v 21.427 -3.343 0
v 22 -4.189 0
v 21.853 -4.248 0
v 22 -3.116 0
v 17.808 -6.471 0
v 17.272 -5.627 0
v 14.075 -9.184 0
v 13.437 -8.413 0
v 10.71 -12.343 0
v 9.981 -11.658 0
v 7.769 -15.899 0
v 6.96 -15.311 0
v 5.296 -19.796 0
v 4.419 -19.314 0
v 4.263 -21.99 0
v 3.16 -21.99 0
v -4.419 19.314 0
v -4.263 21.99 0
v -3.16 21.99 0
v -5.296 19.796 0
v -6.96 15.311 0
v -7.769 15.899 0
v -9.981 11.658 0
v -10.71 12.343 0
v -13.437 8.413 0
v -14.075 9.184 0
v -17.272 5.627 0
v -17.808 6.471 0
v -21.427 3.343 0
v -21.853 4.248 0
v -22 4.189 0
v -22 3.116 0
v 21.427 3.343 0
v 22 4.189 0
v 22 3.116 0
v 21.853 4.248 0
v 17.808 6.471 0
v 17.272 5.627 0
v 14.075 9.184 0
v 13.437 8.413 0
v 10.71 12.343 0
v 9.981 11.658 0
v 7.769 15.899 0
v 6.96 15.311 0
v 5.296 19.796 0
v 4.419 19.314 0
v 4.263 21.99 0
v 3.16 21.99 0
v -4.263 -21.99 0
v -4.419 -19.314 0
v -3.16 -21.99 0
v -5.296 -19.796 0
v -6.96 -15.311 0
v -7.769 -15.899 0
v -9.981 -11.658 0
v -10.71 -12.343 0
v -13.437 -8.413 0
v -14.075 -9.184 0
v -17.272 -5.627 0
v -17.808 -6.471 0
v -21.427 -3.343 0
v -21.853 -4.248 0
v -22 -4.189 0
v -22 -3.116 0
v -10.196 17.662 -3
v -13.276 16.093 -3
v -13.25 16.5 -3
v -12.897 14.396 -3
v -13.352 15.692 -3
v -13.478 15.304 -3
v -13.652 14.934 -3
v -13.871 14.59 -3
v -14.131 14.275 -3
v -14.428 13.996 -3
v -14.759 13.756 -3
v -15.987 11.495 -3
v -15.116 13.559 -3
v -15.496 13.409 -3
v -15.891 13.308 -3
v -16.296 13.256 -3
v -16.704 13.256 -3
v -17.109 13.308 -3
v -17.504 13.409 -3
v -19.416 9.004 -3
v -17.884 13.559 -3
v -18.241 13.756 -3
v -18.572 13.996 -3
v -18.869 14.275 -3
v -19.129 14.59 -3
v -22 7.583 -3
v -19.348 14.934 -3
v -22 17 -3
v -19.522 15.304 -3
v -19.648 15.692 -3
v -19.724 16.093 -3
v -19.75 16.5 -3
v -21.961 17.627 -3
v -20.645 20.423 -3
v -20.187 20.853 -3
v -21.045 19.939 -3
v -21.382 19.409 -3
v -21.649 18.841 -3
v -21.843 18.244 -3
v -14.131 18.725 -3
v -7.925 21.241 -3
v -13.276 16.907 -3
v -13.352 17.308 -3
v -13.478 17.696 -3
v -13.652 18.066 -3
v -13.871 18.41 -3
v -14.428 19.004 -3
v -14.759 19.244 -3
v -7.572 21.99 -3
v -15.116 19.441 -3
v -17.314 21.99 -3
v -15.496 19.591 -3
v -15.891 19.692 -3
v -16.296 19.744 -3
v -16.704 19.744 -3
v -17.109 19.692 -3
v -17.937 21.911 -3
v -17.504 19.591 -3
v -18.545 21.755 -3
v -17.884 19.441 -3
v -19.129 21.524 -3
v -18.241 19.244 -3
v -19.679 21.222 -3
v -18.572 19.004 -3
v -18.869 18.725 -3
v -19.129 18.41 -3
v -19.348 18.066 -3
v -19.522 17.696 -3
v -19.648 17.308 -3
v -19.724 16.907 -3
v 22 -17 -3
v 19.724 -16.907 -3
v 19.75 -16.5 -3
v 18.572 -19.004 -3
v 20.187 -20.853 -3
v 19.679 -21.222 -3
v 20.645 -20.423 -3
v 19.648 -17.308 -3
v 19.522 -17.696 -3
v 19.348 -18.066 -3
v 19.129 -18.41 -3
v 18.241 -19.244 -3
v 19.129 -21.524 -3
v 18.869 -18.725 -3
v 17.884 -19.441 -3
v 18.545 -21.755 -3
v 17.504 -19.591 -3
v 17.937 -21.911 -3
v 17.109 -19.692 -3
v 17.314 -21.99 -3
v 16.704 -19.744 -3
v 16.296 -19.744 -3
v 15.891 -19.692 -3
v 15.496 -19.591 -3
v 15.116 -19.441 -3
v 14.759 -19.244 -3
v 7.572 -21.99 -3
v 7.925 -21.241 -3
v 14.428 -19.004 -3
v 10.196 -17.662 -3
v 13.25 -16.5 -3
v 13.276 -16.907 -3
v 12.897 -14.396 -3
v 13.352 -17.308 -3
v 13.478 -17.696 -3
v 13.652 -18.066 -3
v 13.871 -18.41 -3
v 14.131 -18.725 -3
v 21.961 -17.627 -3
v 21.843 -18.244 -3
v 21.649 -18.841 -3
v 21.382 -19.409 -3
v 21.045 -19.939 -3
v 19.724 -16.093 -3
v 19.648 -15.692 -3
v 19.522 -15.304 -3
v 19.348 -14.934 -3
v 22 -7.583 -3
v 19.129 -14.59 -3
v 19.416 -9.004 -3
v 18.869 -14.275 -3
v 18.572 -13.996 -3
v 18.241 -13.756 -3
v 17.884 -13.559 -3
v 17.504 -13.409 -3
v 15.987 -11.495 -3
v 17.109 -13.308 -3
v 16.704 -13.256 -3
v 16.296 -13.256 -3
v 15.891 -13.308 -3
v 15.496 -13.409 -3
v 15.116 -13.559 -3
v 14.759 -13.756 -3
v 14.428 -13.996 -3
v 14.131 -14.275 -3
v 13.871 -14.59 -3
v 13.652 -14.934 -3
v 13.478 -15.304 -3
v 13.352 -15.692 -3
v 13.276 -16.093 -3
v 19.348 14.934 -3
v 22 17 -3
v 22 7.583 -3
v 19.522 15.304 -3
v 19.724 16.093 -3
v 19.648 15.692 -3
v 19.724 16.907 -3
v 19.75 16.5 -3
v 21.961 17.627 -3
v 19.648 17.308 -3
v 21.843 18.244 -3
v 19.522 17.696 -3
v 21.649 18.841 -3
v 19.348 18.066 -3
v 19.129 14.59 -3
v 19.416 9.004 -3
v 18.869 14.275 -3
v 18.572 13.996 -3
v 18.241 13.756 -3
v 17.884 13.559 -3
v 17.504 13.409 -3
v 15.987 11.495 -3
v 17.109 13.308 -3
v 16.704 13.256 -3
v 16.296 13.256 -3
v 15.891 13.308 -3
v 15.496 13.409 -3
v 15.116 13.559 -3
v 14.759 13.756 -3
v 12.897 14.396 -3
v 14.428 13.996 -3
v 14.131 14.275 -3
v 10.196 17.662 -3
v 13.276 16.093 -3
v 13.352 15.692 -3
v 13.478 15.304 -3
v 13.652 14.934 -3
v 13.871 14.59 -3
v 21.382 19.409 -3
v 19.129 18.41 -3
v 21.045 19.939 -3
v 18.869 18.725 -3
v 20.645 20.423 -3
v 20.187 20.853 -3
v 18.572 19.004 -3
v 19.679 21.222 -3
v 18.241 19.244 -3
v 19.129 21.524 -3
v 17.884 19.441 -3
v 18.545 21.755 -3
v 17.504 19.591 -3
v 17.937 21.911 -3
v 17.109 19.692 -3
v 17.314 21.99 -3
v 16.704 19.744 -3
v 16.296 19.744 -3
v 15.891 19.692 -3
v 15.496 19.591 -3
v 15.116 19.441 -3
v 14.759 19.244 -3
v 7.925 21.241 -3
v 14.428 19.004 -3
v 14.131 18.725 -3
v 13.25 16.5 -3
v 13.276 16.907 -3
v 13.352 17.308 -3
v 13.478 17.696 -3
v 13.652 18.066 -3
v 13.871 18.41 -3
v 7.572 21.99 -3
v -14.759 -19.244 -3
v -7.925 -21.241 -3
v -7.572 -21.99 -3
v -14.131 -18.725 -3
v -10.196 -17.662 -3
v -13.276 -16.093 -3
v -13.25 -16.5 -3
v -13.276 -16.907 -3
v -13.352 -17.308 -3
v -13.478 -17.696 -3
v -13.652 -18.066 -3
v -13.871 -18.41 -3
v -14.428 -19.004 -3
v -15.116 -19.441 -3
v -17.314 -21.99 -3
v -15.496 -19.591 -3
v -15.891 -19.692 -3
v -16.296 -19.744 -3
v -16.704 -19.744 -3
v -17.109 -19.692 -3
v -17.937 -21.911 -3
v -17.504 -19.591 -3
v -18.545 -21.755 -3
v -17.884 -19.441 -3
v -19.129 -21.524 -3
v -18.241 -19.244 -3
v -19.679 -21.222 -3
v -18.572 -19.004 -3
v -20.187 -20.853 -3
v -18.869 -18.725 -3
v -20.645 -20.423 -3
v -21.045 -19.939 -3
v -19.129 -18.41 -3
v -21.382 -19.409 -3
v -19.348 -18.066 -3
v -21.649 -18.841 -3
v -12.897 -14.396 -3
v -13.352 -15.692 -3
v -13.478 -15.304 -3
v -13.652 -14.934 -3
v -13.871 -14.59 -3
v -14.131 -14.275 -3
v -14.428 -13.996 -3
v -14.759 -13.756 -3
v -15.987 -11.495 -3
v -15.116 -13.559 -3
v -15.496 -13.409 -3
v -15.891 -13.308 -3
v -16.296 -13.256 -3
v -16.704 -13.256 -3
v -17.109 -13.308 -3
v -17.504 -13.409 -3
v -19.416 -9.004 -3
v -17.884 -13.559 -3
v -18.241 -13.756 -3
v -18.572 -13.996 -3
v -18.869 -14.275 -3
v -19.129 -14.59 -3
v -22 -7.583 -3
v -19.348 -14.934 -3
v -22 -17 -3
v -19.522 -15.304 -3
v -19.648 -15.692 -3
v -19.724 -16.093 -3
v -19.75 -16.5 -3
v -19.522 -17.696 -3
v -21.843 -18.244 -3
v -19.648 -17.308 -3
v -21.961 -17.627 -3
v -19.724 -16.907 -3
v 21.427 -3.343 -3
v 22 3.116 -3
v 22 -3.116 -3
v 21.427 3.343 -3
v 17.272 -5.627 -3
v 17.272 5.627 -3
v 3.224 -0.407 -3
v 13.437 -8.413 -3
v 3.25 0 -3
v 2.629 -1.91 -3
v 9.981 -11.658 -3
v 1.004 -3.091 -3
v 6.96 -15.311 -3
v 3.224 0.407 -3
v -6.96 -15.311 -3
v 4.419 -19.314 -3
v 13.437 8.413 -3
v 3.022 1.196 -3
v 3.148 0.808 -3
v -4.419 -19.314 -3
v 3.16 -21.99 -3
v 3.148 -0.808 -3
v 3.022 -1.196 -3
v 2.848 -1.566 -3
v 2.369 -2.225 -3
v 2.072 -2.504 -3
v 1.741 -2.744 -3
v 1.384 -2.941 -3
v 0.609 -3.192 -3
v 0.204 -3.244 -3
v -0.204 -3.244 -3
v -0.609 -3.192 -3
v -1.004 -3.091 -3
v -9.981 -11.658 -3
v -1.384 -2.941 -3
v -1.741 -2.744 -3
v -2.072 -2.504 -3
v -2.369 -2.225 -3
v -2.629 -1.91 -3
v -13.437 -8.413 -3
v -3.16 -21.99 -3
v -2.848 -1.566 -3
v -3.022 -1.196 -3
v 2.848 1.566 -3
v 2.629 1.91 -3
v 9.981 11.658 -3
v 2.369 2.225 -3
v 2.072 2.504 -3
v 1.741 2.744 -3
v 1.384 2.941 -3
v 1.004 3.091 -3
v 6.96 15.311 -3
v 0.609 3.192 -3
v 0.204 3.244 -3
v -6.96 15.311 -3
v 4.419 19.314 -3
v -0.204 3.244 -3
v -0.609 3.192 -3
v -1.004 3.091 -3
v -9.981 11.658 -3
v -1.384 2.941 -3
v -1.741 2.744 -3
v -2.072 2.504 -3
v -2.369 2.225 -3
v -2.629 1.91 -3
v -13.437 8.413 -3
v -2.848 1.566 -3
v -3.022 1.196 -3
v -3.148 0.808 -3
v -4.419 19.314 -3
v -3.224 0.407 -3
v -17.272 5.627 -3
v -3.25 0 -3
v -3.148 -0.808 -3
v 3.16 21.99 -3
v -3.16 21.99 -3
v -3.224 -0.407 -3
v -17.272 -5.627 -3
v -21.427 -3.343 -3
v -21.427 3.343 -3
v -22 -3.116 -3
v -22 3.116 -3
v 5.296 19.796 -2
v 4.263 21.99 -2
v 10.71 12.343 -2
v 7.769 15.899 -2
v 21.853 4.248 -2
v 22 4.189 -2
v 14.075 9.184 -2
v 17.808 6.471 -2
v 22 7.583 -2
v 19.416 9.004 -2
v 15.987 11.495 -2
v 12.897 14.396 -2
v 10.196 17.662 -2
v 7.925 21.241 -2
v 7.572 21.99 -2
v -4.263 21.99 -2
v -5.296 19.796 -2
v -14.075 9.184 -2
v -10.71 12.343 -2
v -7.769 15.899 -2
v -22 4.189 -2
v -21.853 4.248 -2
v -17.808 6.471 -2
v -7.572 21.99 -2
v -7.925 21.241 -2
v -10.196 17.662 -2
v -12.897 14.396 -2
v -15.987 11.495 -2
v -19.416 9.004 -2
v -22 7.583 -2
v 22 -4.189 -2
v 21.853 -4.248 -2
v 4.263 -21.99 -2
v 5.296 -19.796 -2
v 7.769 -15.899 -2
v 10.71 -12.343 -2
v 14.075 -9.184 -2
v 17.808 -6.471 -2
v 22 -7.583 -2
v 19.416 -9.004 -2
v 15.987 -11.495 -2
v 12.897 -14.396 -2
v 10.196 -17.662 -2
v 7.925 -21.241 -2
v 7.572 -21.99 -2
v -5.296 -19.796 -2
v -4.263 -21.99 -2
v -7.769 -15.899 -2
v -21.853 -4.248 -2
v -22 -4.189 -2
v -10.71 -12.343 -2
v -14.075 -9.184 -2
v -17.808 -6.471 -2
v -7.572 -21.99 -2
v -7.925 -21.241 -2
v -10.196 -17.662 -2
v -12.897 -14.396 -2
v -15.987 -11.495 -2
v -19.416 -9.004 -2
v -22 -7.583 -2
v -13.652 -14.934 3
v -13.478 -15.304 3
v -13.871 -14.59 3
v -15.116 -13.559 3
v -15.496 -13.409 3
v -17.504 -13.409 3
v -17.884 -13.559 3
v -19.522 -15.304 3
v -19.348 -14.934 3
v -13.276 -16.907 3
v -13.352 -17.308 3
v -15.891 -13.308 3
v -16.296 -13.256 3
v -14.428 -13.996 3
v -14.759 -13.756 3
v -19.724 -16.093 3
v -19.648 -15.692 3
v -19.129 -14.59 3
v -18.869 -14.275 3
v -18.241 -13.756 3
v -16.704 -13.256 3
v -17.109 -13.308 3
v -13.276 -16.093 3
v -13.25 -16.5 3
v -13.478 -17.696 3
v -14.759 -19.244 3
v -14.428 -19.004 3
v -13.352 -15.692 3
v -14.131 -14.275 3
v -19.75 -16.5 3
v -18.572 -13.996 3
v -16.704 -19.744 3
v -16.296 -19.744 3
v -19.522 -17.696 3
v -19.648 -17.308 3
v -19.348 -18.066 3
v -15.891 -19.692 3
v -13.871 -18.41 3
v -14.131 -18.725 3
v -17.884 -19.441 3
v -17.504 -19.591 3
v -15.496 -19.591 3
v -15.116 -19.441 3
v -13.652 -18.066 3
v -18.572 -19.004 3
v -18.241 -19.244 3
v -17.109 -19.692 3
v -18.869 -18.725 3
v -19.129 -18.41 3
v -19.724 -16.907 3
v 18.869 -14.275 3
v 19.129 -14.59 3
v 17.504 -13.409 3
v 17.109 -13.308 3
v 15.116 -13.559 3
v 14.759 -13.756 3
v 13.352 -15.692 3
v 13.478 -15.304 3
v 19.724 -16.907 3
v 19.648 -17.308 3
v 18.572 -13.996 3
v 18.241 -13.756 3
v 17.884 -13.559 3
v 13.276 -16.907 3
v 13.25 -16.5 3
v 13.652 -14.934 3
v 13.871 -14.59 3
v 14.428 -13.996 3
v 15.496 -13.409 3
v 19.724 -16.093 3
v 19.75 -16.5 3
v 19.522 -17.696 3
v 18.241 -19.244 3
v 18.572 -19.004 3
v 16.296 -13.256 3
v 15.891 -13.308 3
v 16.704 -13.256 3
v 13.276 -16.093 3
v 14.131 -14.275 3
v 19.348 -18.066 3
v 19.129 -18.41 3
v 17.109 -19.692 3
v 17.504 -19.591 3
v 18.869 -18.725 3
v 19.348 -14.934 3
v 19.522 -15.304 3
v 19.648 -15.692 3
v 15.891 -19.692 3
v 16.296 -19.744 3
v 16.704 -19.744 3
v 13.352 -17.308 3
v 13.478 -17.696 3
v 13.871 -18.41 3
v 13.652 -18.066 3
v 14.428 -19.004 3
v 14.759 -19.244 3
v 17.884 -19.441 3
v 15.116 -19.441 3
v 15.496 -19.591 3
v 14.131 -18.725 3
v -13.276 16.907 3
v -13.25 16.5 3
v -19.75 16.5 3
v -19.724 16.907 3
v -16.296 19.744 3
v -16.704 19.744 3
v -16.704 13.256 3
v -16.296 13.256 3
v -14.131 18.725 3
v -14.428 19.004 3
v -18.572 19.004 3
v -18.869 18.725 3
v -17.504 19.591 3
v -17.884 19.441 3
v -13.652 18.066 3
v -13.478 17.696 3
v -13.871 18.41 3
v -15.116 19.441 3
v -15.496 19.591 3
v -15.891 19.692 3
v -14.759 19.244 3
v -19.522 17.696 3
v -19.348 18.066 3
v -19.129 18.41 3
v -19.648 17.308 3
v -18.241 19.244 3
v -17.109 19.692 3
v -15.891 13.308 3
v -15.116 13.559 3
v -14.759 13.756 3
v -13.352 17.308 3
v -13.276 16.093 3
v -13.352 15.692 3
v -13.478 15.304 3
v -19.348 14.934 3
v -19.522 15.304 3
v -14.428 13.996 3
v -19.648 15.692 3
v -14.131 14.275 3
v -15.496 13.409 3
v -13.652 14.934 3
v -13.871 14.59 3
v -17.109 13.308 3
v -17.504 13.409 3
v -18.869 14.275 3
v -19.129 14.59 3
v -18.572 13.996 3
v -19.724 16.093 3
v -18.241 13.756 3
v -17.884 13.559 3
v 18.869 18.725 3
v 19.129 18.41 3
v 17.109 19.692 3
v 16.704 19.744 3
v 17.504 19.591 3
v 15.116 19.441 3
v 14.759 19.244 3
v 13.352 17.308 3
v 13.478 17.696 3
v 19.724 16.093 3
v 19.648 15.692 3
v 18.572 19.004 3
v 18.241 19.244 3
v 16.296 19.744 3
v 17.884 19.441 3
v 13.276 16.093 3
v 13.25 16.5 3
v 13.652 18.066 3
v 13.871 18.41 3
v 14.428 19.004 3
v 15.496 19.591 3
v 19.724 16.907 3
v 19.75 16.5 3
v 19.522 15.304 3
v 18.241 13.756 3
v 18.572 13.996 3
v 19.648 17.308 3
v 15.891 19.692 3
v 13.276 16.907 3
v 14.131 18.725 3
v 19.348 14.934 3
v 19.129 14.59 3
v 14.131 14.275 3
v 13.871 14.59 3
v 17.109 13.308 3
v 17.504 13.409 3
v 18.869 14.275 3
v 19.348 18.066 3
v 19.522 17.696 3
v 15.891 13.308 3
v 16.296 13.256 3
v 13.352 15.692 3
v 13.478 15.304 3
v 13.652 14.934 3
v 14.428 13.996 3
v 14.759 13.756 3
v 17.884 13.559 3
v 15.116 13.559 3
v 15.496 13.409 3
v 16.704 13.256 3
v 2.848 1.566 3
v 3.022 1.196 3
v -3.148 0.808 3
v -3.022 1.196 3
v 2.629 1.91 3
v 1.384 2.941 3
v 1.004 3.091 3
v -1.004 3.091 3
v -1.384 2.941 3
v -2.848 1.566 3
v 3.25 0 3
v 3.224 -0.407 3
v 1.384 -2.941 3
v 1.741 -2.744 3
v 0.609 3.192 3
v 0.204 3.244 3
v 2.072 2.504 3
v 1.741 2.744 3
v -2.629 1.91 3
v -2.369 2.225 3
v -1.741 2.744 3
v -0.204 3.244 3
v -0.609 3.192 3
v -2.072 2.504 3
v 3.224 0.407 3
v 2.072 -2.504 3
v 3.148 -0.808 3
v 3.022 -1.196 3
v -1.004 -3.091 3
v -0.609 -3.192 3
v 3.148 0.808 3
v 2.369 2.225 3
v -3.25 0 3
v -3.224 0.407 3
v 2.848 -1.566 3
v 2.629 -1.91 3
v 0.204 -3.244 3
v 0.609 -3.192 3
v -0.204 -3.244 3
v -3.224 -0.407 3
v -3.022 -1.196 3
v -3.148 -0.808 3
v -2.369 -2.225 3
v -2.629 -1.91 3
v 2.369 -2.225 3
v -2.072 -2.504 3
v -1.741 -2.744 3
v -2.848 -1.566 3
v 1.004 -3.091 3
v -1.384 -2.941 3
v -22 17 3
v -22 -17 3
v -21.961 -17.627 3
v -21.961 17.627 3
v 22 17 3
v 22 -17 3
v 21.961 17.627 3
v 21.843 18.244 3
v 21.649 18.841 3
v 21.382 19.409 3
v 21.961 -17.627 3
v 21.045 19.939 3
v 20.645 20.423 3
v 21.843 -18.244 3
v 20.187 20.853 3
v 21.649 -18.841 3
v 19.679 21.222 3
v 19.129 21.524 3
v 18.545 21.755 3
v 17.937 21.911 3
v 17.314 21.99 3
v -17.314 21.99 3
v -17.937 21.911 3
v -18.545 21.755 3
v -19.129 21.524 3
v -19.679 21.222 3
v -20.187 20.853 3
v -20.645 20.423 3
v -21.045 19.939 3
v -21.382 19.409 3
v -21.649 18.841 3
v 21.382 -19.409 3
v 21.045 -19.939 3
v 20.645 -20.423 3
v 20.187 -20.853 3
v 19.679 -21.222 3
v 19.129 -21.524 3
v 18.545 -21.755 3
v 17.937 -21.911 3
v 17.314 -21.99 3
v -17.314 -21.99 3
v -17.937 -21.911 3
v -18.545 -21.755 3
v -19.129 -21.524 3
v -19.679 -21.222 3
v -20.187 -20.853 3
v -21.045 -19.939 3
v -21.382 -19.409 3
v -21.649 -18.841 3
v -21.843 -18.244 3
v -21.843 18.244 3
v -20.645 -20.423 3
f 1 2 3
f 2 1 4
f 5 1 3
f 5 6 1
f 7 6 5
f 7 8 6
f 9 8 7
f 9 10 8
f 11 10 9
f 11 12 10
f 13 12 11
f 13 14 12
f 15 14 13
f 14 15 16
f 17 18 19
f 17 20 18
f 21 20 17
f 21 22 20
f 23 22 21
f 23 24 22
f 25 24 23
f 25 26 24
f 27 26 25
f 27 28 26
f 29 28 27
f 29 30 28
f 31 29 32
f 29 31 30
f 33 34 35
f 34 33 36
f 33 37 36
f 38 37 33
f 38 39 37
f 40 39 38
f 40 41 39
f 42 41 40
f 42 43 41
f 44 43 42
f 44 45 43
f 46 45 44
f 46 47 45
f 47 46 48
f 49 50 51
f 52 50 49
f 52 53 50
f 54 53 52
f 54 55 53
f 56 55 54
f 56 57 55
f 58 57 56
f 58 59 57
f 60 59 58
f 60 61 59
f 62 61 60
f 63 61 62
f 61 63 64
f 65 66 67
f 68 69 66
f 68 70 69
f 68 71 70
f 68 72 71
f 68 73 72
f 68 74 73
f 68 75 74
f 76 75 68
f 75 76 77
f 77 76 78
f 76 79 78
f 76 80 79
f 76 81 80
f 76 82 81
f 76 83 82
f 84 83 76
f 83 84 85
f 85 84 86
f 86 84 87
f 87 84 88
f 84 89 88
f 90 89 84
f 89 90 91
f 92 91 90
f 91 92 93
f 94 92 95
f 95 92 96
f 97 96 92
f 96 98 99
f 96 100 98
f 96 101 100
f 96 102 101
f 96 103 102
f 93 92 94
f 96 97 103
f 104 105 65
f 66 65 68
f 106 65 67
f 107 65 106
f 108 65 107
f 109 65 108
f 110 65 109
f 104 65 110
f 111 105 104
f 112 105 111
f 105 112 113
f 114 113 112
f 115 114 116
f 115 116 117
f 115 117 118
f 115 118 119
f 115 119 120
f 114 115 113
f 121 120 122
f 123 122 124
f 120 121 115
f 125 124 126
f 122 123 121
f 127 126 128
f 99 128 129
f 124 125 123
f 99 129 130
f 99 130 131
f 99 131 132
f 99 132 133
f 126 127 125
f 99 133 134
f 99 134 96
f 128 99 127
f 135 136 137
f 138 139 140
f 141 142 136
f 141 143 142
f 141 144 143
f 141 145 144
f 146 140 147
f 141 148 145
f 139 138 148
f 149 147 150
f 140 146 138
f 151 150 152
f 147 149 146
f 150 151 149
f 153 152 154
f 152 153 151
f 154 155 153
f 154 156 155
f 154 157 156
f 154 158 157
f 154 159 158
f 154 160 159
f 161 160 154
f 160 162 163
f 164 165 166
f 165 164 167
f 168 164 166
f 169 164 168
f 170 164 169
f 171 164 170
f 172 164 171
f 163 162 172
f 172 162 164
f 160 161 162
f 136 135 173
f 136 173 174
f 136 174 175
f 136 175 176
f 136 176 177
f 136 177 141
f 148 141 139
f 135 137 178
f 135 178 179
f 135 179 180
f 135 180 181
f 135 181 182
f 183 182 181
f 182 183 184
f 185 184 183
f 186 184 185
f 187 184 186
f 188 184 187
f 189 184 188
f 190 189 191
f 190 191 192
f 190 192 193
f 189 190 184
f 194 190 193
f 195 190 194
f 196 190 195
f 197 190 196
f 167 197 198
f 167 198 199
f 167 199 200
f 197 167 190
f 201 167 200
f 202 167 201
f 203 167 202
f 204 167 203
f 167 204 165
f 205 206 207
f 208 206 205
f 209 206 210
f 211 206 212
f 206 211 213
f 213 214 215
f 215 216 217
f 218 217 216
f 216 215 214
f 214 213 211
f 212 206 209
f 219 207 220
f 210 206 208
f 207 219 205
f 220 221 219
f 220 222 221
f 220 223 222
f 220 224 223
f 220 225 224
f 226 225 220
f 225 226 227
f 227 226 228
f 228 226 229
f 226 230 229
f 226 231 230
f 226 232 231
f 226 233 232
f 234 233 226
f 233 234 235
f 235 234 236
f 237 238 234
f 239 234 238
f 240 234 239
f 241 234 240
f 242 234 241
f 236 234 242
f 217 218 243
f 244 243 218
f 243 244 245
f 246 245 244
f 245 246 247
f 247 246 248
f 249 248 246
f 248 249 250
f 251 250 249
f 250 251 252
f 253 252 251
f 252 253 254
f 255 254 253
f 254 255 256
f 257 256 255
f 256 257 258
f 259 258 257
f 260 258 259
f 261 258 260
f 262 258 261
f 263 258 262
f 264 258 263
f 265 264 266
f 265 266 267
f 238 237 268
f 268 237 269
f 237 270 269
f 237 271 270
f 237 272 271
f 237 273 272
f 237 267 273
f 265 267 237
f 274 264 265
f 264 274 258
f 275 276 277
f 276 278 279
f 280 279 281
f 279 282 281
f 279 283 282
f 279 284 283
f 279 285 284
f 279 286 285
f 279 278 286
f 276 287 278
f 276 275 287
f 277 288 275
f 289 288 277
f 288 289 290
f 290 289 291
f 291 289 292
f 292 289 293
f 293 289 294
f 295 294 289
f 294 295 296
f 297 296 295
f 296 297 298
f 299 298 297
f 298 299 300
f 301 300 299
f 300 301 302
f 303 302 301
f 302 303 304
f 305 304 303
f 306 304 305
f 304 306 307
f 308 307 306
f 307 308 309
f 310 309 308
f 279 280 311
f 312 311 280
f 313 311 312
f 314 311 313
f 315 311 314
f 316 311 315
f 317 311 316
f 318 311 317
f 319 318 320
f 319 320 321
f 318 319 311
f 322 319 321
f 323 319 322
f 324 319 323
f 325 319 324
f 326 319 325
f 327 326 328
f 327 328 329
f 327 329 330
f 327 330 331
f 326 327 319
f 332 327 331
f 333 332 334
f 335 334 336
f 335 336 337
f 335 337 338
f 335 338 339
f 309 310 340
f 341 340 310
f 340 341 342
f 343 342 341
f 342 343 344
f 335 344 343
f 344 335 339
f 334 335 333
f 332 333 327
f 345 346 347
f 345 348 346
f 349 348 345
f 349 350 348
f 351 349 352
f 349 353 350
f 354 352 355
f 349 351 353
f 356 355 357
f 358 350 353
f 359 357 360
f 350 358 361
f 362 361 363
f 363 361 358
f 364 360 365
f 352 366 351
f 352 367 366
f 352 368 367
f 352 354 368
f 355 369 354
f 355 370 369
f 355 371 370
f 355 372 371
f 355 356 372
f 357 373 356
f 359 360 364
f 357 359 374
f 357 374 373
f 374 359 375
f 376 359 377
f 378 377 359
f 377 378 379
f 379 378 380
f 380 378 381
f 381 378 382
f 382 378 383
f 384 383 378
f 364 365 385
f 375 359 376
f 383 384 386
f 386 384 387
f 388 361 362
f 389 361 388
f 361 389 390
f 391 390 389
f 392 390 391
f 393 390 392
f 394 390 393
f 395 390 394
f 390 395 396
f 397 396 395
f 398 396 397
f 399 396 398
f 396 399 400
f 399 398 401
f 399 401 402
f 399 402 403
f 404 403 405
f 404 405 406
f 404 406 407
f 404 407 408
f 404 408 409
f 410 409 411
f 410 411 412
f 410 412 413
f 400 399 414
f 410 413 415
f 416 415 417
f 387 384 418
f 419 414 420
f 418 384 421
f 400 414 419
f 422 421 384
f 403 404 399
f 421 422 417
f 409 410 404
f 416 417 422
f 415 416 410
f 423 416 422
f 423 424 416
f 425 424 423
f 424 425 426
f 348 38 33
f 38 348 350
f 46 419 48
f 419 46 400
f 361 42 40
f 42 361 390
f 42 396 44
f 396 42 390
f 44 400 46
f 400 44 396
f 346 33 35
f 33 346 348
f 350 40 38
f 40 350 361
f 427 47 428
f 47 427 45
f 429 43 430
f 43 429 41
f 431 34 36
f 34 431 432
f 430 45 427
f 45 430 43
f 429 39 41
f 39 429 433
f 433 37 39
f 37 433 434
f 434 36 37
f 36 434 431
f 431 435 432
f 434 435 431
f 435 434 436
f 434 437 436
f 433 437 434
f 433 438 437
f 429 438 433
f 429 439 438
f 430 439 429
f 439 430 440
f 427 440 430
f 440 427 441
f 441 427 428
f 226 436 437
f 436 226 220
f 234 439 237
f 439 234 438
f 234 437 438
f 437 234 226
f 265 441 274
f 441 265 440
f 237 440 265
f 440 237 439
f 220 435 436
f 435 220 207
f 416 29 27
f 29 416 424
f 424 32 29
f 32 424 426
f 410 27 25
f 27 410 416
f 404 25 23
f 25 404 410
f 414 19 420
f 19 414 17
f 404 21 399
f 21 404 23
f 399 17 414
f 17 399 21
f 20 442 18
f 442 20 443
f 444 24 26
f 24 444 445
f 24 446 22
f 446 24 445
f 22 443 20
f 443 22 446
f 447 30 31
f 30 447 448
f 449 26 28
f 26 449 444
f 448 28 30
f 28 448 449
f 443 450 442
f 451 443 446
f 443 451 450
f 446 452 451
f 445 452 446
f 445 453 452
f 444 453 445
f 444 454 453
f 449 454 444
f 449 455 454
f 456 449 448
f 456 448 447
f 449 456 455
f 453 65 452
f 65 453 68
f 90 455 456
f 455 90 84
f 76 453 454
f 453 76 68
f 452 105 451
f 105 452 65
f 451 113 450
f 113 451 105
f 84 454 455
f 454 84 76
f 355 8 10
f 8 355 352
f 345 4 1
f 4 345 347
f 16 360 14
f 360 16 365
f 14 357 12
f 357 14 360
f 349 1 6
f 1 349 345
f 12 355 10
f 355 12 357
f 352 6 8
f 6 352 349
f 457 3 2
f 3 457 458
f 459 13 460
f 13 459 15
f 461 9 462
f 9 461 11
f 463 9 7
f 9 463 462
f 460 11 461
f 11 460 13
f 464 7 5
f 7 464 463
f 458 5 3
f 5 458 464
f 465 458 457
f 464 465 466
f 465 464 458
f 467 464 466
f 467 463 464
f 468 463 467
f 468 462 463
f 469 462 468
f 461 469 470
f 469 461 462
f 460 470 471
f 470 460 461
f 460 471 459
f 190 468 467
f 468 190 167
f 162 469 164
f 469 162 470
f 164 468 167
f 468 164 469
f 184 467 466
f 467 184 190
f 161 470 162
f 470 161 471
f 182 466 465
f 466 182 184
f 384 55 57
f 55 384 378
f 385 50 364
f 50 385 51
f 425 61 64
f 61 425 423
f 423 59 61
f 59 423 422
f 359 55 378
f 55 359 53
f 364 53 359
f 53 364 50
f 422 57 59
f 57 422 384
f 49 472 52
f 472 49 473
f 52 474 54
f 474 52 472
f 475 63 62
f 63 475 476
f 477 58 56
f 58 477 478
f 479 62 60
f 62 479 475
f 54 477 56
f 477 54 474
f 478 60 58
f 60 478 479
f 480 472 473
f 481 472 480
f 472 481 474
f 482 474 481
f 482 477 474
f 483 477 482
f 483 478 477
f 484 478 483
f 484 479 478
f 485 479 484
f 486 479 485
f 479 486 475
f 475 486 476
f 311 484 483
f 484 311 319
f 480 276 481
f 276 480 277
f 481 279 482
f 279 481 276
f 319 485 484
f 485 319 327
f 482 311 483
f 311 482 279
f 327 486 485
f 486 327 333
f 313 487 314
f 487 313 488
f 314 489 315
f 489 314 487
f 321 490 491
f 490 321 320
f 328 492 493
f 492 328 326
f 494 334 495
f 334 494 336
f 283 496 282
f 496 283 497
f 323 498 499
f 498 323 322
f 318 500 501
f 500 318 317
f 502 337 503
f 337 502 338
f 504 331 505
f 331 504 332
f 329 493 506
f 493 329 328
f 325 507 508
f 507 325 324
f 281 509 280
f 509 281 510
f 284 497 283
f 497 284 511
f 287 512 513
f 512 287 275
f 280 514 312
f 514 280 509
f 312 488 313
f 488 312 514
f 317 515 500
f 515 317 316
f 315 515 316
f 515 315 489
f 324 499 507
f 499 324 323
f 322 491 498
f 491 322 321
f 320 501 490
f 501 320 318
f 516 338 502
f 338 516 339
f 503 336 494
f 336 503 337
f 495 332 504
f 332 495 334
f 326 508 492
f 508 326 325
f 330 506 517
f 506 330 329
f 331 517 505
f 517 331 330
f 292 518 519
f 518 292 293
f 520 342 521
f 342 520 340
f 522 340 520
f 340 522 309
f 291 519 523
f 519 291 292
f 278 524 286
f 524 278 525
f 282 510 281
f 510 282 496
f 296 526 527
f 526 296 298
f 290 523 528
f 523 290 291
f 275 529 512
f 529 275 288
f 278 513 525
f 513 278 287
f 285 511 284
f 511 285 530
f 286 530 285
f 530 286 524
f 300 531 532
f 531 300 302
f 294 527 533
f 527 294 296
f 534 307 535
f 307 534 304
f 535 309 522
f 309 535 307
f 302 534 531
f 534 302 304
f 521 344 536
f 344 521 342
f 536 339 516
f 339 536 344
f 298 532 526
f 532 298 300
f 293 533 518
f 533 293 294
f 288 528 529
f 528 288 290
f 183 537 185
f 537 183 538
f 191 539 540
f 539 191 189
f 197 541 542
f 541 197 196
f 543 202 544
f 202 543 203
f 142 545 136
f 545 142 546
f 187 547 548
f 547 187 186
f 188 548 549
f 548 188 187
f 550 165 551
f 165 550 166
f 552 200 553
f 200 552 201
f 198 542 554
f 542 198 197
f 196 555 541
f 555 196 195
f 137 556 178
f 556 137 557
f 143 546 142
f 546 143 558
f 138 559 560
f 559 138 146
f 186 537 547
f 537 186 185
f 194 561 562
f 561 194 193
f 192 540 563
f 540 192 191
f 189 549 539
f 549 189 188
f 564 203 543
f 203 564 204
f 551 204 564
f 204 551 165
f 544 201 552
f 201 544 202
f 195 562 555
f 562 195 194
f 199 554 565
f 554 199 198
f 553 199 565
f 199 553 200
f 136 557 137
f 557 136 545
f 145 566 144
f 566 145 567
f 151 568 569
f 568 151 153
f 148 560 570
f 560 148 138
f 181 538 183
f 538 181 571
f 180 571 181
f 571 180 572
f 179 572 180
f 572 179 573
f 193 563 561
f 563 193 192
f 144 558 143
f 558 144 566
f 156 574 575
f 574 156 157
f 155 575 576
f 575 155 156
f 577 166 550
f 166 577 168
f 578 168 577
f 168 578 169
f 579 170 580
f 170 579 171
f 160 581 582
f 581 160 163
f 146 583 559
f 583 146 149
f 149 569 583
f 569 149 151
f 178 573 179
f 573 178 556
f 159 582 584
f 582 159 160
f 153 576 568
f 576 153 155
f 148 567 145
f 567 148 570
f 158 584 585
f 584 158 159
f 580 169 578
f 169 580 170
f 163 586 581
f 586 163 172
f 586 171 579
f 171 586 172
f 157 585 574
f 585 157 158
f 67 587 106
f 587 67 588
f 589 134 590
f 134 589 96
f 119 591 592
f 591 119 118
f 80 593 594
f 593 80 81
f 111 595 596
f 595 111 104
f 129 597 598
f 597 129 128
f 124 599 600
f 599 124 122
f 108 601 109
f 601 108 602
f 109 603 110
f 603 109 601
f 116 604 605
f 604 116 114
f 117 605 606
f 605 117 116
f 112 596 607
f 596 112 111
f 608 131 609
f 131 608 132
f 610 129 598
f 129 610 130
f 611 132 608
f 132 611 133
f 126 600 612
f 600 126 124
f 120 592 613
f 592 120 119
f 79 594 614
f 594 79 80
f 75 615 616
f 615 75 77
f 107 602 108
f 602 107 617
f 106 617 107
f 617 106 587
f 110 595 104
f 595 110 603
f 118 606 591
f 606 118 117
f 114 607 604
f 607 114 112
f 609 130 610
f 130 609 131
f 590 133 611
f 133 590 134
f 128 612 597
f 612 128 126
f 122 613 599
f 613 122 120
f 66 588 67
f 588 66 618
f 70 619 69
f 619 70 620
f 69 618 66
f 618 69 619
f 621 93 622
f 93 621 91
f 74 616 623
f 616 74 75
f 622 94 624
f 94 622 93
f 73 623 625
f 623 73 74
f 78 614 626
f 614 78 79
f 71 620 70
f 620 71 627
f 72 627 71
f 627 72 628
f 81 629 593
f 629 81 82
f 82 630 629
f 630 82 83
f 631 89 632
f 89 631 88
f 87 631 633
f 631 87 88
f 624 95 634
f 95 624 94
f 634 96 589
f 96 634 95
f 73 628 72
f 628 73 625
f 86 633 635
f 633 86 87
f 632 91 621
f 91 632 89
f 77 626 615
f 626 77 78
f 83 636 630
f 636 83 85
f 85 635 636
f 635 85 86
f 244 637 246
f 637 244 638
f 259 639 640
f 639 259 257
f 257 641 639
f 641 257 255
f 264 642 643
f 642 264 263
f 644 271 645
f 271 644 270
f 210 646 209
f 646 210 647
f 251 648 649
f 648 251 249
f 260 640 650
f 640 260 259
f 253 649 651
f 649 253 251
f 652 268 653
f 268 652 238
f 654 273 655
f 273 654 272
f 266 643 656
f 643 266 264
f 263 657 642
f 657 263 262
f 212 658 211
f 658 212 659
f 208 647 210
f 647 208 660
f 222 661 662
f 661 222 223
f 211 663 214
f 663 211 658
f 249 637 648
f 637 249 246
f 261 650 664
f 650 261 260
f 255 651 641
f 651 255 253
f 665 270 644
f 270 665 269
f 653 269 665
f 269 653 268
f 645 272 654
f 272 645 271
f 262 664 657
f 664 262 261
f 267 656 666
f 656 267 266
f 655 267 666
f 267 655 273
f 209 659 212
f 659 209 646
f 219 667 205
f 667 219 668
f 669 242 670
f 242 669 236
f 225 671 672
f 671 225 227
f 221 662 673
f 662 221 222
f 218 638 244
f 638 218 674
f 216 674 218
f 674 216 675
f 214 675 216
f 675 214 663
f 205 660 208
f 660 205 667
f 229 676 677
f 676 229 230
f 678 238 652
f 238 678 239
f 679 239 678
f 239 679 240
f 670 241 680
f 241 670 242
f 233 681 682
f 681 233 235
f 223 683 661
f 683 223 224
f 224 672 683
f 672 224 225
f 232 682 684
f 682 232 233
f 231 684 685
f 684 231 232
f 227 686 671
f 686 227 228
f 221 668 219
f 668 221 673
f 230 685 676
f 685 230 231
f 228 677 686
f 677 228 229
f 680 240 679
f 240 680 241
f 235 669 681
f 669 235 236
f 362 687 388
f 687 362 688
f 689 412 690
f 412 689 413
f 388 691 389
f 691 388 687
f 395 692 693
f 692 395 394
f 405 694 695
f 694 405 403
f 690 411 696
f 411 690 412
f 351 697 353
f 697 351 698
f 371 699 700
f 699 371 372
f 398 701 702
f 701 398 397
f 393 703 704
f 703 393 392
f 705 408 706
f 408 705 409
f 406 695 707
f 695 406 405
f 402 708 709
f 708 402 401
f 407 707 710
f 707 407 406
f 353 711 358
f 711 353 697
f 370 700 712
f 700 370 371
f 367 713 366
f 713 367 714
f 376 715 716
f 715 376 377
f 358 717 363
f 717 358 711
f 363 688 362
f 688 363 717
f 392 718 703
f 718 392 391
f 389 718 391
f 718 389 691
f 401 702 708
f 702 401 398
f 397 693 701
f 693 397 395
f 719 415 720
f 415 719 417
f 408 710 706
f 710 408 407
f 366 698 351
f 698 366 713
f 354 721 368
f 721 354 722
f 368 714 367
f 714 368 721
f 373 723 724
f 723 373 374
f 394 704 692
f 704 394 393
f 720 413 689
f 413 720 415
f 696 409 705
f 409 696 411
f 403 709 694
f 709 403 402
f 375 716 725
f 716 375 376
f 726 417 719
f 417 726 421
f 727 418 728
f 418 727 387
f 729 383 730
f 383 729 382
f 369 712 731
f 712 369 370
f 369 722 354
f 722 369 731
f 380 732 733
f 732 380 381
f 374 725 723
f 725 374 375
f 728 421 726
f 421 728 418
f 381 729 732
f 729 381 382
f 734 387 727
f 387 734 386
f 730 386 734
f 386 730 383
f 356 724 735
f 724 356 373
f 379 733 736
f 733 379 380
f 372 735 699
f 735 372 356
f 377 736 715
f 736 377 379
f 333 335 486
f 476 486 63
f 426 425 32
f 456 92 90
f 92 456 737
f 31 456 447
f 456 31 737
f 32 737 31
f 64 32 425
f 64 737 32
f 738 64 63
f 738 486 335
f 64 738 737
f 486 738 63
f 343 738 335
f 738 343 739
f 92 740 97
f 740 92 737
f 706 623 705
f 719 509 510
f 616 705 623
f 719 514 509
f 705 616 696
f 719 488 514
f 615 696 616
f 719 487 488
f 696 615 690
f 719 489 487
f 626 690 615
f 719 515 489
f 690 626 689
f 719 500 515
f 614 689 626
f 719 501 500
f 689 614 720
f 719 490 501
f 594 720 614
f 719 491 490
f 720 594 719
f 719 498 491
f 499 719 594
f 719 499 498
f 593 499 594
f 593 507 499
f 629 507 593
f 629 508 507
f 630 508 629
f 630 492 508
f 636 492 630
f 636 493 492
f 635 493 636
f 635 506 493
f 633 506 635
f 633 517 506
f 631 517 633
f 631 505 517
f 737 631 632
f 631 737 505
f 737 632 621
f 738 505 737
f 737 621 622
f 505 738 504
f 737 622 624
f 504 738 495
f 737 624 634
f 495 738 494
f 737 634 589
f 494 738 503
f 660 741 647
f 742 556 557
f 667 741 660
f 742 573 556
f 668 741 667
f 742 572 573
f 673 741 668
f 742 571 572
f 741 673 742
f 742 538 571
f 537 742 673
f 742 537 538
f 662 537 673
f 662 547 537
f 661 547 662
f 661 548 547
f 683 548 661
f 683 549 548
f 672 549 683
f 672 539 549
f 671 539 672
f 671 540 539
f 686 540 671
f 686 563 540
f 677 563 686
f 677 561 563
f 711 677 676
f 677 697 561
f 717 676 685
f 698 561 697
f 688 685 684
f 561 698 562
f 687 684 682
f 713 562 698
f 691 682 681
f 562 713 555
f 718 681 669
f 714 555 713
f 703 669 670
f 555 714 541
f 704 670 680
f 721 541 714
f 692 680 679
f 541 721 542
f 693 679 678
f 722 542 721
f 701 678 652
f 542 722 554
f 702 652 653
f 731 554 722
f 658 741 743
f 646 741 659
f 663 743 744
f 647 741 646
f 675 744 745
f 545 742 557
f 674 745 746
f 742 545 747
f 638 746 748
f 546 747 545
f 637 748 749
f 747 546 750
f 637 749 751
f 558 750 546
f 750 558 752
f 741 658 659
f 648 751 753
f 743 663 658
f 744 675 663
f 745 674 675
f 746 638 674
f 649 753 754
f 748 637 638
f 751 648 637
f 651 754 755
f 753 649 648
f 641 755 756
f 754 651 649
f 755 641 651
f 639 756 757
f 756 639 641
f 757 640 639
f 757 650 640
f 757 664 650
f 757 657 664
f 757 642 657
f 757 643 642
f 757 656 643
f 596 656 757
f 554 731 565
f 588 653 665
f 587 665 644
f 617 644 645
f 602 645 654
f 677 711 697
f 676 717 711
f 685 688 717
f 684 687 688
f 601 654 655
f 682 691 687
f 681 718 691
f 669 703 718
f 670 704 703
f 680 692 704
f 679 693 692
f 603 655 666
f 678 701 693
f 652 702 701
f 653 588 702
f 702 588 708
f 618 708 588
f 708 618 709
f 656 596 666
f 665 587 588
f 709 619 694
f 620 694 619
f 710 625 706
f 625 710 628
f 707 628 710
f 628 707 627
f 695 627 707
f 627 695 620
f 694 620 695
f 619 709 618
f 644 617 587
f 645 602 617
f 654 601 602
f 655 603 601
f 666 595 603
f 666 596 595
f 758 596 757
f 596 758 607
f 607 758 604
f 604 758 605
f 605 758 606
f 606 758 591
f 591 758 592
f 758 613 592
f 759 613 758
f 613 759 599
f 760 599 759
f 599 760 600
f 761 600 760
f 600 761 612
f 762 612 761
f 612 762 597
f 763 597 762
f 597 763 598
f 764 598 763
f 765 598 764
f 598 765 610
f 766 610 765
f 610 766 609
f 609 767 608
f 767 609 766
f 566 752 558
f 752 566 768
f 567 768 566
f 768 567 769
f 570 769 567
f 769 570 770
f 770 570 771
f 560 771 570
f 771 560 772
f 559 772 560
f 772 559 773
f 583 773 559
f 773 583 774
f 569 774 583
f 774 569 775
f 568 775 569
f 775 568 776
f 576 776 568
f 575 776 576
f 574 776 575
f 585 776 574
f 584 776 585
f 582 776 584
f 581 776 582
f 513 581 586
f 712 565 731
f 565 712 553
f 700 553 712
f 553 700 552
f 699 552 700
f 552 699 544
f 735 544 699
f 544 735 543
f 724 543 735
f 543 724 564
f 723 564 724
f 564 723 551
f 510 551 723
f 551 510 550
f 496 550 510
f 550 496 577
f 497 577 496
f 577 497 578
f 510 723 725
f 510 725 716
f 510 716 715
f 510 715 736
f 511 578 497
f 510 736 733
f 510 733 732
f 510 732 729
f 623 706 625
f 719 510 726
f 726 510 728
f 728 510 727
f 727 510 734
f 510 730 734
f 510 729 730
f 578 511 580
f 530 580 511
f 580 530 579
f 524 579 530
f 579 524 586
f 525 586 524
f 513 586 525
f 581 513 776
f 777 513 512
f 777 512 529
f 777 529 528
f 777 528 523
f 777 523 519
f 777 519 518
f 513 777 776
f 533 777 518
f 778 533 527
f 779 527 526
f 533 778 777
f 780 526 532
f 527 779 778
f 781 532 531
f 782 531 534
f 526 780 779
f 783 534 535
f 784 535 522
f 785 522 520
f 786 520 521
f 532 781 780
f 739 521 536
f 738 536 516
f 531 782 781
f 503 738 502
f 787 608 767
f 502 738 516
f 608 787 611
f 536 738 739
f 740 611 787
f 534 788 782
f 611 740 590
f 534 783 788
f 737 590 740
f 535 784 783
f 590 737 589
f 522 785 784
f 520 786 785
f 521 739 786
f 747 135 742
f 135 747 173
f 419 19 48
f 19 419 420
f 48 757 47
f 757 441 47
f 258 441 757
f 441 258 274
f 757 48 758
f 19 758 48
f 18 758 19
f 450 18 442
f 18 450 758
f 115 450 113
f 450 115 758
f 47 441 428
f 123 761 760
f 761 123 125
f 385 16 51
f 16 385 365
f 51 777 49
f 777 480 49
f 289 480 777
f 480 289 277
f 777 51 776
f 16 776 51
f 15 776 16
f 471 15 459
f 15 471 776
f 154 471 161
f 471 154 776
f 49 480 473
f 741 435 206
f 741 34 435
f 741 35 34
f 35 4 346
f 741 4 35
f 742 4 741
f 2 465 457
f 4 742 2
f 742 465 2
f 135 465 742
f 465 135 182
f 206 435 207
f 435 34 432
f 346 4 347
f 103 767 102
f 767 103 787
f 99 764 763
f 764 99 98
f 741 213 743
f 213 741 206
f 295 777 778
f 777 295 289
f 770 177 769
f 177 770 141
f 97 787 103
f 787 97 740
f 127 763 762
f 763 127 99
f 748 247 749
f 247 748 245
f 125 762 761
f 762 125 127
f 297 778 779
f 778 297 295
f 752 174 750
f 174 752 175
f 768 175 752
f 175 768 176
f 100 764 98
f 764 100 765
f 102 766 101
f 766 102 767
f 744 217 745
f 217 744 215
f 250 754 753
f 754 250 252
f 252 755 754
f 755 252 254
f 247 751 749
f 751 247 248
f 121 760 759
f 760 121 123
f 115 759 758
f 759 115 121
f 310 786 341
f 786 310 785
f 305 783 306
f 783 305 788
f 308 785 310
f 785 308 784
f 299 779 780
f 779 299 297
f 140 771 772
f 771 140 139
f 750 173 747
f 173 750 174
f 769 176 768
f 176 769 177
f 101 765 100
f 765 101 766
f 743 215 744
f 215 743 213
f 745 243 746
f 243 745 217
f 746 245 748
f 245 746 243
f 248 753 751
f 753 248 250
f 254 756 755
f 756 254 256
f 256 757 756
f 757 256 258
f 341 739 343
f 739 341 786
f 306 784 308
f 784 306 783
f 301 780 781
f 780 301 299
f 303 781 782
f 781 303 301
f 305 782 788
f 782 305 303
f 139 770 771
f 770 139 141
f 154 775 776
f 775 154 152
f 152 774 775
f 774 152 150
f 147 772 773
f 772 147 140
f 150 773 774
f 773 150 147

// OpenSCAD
$fn = 50;


difference() {
	union() {
		translate(v = [0, 0, -3]) {
			hull() {
				translate(v = [-17.0000000000, 17.0000000000, 0]) {
					cylinder(h = 6, r = 5);
				}
				translate(v = [17.0000000000, 17.0000000000, 0]) {
					cylinder(h = 6, r = 5);
				}
				translate(v = [-17.0000000000, -17.0000000000, 0]) {
					cylinder(h = 6, r = 5);
				}
				translate(v = [17.0000000000, -17.0000000000, 0]) {
					cylinder(h = 6, r = 5);
				}
			}
		}
	}
	union() {
		translate(v = [37.5000000000, 37.5000000000, -3]) {
			rotate(a = [0, 0, 0]) {
				difference() {
					union() {
						cylinder(h = 3, r = 37.7500000000);
					}
					union() {
						cylinder(h = 3, r = 36.7500000000);
					}
				}
			}
		}
		translate(v = [37.5000000000, 37.5000000000, -3]) {
			rotate(a = [0, 0, 0]) {
				difference() {
					union() {
						cylinder(h = 1, r = 36.7500000000);
					}
					union() {
						cylinder(h = 1, r = 33.7500000000);
					}
				}
			}
		}
		translate(v = [37.5000000000, 37.5000000000, -106]) {
			rotate(a = [0, 0, 0]) {
				difference() {
					union() {
						cylinder(h = 103, r = 36.7500000000);
					}
					union() {
						cylinder(h = 103, r = 35.7500000000);
					}
				}
			}
		}
		translate(v = [37.5000000000, 37.5000000000, -109]) {
			rotate(a = [0, 0, 0]) {
				difference() {
					union() {
						cylinder(h = 3, r = 36.7500000000);
					}
					union() {
						cylinder(h = 3, r = 35.7500000000);
					}
				}
			}
		}
		translate(v = [-37.5000000000, 37.5000000000, -3]) {
			rotate(a = [0, 0, 0]) {
				difference() {
					union() {
						cylinder(h = 3, r = 37.7500000000);
					}
					union() {
						cylinder(h = 3, r = 36.7500000000);
					}
				}
			}
		}
		translate(v = [-37.5000000000, 37.5000000000, -3]) {
			rotate(a = [0, 0, 0]) {
				difference() {
					union() {
						cylinder(h = 1, r = 36.7500000000);
					}
					union() {
						cylinder(h = 1, r = 33.7500000000);
					}
				}
			}
		}
		translate(v = [-37.5000000000, 37.5000000000, -106]) {
			rotate(a = [0, 0, 0]) {
				difference() {
					union() {
						cylinder(h = 103, r = 36.7500000000);
					}
					union() {
						cylinder(h = 103, r = 35.7500000000);
					}
				}
			}
		}
		translate(v = [-37.5000000000, 37.5000000000, -109]) {
			rotate(a = [0, 0, 0]) {
				difference() {
					union() {
						cylinder(h = 3, r = 36.7500000000);
					}
					union() {
						cylinder(h = 3, r = 35.7500000000);
					}
				}
			}
		}
		translate(v = [37.5000000000, -37.5000000000, -3]) {
			rotate(a = [0, 0, 0]) {
				difference() {
					union() {
						cylinder(h = 3, r = 37.7500000000);
					}
					union() {
						cylinder(h = 3, r = 36.7500000000);
					}
				}
			}
		}
		translate(v = [37.5000000000, -37.5000000000, -3]) {
			rotate(a = [0, 0, 0]) {
				difference() {
					union() {
						cylinder(h = 1, r = 36.7500000000);
					}
					union() {
						cylinder(h = 1, r = 33.7500000000);
					}
				}
			}
		}
		translate(v = [37.5000000000, -37.5000000000, -106]) {
			rotate(a = [0, 0, 0]) {
				difference() {
					union() {
						cylinder(h = 103, r = 36.7500000000);
					}
					union() {
						cylinder(h = 103, r = 35.7500000000);
					}
				}
			}
		}
		translate(v = [37.5000000000, -37.5000000000, -109]) {
			rotate(a = [0, 0, 0]) {
				difference() {
					union() {
						cylinder(h = 3, r = 36.7500000000);
					}
					union() {
						cylinder(h = 3, r = 35.7500000000);
					}
				}
			}
		}
		translate(v = [-37.5000000000, -37.5000000000, -3]) {
			rotate(a = [0, 0, 0]) {
				difference() {
					union() {
						cylinder(h = 3, r = 37.7500000000);
					}
					union() {
						cylinder(h = 3, r = 36.7500000000);
					}
				}
			}
		}
		translate(v = [-37.5000000000, -37.5000000000, -3]) {
			rotate(a = [0, 0, 0]) {
				difference() {
					union() {
						cylinder(h = 1, r = 36.7500000000);
					}
					union() {
						cylinder(h = 1, r = 33.7500000000);
					}
				}
			}
		}
		translate(v = [-37.5000000000, -37.5000000000, -106]) {
			rotate(a = [0, 0, 0]) {
				difference() {
					union() {
						cylinder(h = 103, r = 36.7500000000);
					}
					union() {
						cylinder(h = 103, r = 35.7500000000);
					}
				}
			}
		}
		translate(v = [-37.5000000000, -37.5000000000, -109]) {
			rotate(a = [0, 0, 0]) {
				difference() {
					union() {
						cylinder(h = 3, r = 36.7500000000);
					}
					union() {
						cylinder(h = 3, r = 35.7500000000);
					}
				}
			}
		}
		translate(v = [37.5000000000, 37.5000000000, -106.5000000000]) {
			cylinder(h = 1, r = 36.7500000000);
		}
		translate(v = [-37.5000000000, 37.5000000000, -106.5000000000]) {
			cylinder(h = 1, r = 36.7500000000);
		}
		translate(v = [37.5000000000, -37.5000000000, -106.5000000000]) {
			cylinder(h = 1, r = 36.7500000000);
		}
		translate(v = [-37.5000000000, -37.5000000000, -106.5000000000]) {
			cylinder(h = 1, r = 36.7500000000);
		}
		translate(v = [-16.5000000000, -16.5000000000, -125.0000000000]) {
			cylinder(h = 250, r = 3.2500000000);
		}
		translate(v = [16.5000000000, -16.5000000000, -125.0000000000]) {
			cylinder(h = 250, r = 3.2500000000);
		}
		translate(v = [-16.5000000000, 16.5000000000, -125.0000000000]) {
			cylinder(h = 250, r = 3.2500000000);
		}
		translate(v = [16.5000000000, 16.5000000000, -125.0000000000]) {
			cylinder(h = 250, r = 3.2500000000);
		}
		translate(v = [0.0000000000, 0.0000000000, -125.0000000000]) {
			cylinder(h = 250, r = 3.2500000000);
		}
	}
}
